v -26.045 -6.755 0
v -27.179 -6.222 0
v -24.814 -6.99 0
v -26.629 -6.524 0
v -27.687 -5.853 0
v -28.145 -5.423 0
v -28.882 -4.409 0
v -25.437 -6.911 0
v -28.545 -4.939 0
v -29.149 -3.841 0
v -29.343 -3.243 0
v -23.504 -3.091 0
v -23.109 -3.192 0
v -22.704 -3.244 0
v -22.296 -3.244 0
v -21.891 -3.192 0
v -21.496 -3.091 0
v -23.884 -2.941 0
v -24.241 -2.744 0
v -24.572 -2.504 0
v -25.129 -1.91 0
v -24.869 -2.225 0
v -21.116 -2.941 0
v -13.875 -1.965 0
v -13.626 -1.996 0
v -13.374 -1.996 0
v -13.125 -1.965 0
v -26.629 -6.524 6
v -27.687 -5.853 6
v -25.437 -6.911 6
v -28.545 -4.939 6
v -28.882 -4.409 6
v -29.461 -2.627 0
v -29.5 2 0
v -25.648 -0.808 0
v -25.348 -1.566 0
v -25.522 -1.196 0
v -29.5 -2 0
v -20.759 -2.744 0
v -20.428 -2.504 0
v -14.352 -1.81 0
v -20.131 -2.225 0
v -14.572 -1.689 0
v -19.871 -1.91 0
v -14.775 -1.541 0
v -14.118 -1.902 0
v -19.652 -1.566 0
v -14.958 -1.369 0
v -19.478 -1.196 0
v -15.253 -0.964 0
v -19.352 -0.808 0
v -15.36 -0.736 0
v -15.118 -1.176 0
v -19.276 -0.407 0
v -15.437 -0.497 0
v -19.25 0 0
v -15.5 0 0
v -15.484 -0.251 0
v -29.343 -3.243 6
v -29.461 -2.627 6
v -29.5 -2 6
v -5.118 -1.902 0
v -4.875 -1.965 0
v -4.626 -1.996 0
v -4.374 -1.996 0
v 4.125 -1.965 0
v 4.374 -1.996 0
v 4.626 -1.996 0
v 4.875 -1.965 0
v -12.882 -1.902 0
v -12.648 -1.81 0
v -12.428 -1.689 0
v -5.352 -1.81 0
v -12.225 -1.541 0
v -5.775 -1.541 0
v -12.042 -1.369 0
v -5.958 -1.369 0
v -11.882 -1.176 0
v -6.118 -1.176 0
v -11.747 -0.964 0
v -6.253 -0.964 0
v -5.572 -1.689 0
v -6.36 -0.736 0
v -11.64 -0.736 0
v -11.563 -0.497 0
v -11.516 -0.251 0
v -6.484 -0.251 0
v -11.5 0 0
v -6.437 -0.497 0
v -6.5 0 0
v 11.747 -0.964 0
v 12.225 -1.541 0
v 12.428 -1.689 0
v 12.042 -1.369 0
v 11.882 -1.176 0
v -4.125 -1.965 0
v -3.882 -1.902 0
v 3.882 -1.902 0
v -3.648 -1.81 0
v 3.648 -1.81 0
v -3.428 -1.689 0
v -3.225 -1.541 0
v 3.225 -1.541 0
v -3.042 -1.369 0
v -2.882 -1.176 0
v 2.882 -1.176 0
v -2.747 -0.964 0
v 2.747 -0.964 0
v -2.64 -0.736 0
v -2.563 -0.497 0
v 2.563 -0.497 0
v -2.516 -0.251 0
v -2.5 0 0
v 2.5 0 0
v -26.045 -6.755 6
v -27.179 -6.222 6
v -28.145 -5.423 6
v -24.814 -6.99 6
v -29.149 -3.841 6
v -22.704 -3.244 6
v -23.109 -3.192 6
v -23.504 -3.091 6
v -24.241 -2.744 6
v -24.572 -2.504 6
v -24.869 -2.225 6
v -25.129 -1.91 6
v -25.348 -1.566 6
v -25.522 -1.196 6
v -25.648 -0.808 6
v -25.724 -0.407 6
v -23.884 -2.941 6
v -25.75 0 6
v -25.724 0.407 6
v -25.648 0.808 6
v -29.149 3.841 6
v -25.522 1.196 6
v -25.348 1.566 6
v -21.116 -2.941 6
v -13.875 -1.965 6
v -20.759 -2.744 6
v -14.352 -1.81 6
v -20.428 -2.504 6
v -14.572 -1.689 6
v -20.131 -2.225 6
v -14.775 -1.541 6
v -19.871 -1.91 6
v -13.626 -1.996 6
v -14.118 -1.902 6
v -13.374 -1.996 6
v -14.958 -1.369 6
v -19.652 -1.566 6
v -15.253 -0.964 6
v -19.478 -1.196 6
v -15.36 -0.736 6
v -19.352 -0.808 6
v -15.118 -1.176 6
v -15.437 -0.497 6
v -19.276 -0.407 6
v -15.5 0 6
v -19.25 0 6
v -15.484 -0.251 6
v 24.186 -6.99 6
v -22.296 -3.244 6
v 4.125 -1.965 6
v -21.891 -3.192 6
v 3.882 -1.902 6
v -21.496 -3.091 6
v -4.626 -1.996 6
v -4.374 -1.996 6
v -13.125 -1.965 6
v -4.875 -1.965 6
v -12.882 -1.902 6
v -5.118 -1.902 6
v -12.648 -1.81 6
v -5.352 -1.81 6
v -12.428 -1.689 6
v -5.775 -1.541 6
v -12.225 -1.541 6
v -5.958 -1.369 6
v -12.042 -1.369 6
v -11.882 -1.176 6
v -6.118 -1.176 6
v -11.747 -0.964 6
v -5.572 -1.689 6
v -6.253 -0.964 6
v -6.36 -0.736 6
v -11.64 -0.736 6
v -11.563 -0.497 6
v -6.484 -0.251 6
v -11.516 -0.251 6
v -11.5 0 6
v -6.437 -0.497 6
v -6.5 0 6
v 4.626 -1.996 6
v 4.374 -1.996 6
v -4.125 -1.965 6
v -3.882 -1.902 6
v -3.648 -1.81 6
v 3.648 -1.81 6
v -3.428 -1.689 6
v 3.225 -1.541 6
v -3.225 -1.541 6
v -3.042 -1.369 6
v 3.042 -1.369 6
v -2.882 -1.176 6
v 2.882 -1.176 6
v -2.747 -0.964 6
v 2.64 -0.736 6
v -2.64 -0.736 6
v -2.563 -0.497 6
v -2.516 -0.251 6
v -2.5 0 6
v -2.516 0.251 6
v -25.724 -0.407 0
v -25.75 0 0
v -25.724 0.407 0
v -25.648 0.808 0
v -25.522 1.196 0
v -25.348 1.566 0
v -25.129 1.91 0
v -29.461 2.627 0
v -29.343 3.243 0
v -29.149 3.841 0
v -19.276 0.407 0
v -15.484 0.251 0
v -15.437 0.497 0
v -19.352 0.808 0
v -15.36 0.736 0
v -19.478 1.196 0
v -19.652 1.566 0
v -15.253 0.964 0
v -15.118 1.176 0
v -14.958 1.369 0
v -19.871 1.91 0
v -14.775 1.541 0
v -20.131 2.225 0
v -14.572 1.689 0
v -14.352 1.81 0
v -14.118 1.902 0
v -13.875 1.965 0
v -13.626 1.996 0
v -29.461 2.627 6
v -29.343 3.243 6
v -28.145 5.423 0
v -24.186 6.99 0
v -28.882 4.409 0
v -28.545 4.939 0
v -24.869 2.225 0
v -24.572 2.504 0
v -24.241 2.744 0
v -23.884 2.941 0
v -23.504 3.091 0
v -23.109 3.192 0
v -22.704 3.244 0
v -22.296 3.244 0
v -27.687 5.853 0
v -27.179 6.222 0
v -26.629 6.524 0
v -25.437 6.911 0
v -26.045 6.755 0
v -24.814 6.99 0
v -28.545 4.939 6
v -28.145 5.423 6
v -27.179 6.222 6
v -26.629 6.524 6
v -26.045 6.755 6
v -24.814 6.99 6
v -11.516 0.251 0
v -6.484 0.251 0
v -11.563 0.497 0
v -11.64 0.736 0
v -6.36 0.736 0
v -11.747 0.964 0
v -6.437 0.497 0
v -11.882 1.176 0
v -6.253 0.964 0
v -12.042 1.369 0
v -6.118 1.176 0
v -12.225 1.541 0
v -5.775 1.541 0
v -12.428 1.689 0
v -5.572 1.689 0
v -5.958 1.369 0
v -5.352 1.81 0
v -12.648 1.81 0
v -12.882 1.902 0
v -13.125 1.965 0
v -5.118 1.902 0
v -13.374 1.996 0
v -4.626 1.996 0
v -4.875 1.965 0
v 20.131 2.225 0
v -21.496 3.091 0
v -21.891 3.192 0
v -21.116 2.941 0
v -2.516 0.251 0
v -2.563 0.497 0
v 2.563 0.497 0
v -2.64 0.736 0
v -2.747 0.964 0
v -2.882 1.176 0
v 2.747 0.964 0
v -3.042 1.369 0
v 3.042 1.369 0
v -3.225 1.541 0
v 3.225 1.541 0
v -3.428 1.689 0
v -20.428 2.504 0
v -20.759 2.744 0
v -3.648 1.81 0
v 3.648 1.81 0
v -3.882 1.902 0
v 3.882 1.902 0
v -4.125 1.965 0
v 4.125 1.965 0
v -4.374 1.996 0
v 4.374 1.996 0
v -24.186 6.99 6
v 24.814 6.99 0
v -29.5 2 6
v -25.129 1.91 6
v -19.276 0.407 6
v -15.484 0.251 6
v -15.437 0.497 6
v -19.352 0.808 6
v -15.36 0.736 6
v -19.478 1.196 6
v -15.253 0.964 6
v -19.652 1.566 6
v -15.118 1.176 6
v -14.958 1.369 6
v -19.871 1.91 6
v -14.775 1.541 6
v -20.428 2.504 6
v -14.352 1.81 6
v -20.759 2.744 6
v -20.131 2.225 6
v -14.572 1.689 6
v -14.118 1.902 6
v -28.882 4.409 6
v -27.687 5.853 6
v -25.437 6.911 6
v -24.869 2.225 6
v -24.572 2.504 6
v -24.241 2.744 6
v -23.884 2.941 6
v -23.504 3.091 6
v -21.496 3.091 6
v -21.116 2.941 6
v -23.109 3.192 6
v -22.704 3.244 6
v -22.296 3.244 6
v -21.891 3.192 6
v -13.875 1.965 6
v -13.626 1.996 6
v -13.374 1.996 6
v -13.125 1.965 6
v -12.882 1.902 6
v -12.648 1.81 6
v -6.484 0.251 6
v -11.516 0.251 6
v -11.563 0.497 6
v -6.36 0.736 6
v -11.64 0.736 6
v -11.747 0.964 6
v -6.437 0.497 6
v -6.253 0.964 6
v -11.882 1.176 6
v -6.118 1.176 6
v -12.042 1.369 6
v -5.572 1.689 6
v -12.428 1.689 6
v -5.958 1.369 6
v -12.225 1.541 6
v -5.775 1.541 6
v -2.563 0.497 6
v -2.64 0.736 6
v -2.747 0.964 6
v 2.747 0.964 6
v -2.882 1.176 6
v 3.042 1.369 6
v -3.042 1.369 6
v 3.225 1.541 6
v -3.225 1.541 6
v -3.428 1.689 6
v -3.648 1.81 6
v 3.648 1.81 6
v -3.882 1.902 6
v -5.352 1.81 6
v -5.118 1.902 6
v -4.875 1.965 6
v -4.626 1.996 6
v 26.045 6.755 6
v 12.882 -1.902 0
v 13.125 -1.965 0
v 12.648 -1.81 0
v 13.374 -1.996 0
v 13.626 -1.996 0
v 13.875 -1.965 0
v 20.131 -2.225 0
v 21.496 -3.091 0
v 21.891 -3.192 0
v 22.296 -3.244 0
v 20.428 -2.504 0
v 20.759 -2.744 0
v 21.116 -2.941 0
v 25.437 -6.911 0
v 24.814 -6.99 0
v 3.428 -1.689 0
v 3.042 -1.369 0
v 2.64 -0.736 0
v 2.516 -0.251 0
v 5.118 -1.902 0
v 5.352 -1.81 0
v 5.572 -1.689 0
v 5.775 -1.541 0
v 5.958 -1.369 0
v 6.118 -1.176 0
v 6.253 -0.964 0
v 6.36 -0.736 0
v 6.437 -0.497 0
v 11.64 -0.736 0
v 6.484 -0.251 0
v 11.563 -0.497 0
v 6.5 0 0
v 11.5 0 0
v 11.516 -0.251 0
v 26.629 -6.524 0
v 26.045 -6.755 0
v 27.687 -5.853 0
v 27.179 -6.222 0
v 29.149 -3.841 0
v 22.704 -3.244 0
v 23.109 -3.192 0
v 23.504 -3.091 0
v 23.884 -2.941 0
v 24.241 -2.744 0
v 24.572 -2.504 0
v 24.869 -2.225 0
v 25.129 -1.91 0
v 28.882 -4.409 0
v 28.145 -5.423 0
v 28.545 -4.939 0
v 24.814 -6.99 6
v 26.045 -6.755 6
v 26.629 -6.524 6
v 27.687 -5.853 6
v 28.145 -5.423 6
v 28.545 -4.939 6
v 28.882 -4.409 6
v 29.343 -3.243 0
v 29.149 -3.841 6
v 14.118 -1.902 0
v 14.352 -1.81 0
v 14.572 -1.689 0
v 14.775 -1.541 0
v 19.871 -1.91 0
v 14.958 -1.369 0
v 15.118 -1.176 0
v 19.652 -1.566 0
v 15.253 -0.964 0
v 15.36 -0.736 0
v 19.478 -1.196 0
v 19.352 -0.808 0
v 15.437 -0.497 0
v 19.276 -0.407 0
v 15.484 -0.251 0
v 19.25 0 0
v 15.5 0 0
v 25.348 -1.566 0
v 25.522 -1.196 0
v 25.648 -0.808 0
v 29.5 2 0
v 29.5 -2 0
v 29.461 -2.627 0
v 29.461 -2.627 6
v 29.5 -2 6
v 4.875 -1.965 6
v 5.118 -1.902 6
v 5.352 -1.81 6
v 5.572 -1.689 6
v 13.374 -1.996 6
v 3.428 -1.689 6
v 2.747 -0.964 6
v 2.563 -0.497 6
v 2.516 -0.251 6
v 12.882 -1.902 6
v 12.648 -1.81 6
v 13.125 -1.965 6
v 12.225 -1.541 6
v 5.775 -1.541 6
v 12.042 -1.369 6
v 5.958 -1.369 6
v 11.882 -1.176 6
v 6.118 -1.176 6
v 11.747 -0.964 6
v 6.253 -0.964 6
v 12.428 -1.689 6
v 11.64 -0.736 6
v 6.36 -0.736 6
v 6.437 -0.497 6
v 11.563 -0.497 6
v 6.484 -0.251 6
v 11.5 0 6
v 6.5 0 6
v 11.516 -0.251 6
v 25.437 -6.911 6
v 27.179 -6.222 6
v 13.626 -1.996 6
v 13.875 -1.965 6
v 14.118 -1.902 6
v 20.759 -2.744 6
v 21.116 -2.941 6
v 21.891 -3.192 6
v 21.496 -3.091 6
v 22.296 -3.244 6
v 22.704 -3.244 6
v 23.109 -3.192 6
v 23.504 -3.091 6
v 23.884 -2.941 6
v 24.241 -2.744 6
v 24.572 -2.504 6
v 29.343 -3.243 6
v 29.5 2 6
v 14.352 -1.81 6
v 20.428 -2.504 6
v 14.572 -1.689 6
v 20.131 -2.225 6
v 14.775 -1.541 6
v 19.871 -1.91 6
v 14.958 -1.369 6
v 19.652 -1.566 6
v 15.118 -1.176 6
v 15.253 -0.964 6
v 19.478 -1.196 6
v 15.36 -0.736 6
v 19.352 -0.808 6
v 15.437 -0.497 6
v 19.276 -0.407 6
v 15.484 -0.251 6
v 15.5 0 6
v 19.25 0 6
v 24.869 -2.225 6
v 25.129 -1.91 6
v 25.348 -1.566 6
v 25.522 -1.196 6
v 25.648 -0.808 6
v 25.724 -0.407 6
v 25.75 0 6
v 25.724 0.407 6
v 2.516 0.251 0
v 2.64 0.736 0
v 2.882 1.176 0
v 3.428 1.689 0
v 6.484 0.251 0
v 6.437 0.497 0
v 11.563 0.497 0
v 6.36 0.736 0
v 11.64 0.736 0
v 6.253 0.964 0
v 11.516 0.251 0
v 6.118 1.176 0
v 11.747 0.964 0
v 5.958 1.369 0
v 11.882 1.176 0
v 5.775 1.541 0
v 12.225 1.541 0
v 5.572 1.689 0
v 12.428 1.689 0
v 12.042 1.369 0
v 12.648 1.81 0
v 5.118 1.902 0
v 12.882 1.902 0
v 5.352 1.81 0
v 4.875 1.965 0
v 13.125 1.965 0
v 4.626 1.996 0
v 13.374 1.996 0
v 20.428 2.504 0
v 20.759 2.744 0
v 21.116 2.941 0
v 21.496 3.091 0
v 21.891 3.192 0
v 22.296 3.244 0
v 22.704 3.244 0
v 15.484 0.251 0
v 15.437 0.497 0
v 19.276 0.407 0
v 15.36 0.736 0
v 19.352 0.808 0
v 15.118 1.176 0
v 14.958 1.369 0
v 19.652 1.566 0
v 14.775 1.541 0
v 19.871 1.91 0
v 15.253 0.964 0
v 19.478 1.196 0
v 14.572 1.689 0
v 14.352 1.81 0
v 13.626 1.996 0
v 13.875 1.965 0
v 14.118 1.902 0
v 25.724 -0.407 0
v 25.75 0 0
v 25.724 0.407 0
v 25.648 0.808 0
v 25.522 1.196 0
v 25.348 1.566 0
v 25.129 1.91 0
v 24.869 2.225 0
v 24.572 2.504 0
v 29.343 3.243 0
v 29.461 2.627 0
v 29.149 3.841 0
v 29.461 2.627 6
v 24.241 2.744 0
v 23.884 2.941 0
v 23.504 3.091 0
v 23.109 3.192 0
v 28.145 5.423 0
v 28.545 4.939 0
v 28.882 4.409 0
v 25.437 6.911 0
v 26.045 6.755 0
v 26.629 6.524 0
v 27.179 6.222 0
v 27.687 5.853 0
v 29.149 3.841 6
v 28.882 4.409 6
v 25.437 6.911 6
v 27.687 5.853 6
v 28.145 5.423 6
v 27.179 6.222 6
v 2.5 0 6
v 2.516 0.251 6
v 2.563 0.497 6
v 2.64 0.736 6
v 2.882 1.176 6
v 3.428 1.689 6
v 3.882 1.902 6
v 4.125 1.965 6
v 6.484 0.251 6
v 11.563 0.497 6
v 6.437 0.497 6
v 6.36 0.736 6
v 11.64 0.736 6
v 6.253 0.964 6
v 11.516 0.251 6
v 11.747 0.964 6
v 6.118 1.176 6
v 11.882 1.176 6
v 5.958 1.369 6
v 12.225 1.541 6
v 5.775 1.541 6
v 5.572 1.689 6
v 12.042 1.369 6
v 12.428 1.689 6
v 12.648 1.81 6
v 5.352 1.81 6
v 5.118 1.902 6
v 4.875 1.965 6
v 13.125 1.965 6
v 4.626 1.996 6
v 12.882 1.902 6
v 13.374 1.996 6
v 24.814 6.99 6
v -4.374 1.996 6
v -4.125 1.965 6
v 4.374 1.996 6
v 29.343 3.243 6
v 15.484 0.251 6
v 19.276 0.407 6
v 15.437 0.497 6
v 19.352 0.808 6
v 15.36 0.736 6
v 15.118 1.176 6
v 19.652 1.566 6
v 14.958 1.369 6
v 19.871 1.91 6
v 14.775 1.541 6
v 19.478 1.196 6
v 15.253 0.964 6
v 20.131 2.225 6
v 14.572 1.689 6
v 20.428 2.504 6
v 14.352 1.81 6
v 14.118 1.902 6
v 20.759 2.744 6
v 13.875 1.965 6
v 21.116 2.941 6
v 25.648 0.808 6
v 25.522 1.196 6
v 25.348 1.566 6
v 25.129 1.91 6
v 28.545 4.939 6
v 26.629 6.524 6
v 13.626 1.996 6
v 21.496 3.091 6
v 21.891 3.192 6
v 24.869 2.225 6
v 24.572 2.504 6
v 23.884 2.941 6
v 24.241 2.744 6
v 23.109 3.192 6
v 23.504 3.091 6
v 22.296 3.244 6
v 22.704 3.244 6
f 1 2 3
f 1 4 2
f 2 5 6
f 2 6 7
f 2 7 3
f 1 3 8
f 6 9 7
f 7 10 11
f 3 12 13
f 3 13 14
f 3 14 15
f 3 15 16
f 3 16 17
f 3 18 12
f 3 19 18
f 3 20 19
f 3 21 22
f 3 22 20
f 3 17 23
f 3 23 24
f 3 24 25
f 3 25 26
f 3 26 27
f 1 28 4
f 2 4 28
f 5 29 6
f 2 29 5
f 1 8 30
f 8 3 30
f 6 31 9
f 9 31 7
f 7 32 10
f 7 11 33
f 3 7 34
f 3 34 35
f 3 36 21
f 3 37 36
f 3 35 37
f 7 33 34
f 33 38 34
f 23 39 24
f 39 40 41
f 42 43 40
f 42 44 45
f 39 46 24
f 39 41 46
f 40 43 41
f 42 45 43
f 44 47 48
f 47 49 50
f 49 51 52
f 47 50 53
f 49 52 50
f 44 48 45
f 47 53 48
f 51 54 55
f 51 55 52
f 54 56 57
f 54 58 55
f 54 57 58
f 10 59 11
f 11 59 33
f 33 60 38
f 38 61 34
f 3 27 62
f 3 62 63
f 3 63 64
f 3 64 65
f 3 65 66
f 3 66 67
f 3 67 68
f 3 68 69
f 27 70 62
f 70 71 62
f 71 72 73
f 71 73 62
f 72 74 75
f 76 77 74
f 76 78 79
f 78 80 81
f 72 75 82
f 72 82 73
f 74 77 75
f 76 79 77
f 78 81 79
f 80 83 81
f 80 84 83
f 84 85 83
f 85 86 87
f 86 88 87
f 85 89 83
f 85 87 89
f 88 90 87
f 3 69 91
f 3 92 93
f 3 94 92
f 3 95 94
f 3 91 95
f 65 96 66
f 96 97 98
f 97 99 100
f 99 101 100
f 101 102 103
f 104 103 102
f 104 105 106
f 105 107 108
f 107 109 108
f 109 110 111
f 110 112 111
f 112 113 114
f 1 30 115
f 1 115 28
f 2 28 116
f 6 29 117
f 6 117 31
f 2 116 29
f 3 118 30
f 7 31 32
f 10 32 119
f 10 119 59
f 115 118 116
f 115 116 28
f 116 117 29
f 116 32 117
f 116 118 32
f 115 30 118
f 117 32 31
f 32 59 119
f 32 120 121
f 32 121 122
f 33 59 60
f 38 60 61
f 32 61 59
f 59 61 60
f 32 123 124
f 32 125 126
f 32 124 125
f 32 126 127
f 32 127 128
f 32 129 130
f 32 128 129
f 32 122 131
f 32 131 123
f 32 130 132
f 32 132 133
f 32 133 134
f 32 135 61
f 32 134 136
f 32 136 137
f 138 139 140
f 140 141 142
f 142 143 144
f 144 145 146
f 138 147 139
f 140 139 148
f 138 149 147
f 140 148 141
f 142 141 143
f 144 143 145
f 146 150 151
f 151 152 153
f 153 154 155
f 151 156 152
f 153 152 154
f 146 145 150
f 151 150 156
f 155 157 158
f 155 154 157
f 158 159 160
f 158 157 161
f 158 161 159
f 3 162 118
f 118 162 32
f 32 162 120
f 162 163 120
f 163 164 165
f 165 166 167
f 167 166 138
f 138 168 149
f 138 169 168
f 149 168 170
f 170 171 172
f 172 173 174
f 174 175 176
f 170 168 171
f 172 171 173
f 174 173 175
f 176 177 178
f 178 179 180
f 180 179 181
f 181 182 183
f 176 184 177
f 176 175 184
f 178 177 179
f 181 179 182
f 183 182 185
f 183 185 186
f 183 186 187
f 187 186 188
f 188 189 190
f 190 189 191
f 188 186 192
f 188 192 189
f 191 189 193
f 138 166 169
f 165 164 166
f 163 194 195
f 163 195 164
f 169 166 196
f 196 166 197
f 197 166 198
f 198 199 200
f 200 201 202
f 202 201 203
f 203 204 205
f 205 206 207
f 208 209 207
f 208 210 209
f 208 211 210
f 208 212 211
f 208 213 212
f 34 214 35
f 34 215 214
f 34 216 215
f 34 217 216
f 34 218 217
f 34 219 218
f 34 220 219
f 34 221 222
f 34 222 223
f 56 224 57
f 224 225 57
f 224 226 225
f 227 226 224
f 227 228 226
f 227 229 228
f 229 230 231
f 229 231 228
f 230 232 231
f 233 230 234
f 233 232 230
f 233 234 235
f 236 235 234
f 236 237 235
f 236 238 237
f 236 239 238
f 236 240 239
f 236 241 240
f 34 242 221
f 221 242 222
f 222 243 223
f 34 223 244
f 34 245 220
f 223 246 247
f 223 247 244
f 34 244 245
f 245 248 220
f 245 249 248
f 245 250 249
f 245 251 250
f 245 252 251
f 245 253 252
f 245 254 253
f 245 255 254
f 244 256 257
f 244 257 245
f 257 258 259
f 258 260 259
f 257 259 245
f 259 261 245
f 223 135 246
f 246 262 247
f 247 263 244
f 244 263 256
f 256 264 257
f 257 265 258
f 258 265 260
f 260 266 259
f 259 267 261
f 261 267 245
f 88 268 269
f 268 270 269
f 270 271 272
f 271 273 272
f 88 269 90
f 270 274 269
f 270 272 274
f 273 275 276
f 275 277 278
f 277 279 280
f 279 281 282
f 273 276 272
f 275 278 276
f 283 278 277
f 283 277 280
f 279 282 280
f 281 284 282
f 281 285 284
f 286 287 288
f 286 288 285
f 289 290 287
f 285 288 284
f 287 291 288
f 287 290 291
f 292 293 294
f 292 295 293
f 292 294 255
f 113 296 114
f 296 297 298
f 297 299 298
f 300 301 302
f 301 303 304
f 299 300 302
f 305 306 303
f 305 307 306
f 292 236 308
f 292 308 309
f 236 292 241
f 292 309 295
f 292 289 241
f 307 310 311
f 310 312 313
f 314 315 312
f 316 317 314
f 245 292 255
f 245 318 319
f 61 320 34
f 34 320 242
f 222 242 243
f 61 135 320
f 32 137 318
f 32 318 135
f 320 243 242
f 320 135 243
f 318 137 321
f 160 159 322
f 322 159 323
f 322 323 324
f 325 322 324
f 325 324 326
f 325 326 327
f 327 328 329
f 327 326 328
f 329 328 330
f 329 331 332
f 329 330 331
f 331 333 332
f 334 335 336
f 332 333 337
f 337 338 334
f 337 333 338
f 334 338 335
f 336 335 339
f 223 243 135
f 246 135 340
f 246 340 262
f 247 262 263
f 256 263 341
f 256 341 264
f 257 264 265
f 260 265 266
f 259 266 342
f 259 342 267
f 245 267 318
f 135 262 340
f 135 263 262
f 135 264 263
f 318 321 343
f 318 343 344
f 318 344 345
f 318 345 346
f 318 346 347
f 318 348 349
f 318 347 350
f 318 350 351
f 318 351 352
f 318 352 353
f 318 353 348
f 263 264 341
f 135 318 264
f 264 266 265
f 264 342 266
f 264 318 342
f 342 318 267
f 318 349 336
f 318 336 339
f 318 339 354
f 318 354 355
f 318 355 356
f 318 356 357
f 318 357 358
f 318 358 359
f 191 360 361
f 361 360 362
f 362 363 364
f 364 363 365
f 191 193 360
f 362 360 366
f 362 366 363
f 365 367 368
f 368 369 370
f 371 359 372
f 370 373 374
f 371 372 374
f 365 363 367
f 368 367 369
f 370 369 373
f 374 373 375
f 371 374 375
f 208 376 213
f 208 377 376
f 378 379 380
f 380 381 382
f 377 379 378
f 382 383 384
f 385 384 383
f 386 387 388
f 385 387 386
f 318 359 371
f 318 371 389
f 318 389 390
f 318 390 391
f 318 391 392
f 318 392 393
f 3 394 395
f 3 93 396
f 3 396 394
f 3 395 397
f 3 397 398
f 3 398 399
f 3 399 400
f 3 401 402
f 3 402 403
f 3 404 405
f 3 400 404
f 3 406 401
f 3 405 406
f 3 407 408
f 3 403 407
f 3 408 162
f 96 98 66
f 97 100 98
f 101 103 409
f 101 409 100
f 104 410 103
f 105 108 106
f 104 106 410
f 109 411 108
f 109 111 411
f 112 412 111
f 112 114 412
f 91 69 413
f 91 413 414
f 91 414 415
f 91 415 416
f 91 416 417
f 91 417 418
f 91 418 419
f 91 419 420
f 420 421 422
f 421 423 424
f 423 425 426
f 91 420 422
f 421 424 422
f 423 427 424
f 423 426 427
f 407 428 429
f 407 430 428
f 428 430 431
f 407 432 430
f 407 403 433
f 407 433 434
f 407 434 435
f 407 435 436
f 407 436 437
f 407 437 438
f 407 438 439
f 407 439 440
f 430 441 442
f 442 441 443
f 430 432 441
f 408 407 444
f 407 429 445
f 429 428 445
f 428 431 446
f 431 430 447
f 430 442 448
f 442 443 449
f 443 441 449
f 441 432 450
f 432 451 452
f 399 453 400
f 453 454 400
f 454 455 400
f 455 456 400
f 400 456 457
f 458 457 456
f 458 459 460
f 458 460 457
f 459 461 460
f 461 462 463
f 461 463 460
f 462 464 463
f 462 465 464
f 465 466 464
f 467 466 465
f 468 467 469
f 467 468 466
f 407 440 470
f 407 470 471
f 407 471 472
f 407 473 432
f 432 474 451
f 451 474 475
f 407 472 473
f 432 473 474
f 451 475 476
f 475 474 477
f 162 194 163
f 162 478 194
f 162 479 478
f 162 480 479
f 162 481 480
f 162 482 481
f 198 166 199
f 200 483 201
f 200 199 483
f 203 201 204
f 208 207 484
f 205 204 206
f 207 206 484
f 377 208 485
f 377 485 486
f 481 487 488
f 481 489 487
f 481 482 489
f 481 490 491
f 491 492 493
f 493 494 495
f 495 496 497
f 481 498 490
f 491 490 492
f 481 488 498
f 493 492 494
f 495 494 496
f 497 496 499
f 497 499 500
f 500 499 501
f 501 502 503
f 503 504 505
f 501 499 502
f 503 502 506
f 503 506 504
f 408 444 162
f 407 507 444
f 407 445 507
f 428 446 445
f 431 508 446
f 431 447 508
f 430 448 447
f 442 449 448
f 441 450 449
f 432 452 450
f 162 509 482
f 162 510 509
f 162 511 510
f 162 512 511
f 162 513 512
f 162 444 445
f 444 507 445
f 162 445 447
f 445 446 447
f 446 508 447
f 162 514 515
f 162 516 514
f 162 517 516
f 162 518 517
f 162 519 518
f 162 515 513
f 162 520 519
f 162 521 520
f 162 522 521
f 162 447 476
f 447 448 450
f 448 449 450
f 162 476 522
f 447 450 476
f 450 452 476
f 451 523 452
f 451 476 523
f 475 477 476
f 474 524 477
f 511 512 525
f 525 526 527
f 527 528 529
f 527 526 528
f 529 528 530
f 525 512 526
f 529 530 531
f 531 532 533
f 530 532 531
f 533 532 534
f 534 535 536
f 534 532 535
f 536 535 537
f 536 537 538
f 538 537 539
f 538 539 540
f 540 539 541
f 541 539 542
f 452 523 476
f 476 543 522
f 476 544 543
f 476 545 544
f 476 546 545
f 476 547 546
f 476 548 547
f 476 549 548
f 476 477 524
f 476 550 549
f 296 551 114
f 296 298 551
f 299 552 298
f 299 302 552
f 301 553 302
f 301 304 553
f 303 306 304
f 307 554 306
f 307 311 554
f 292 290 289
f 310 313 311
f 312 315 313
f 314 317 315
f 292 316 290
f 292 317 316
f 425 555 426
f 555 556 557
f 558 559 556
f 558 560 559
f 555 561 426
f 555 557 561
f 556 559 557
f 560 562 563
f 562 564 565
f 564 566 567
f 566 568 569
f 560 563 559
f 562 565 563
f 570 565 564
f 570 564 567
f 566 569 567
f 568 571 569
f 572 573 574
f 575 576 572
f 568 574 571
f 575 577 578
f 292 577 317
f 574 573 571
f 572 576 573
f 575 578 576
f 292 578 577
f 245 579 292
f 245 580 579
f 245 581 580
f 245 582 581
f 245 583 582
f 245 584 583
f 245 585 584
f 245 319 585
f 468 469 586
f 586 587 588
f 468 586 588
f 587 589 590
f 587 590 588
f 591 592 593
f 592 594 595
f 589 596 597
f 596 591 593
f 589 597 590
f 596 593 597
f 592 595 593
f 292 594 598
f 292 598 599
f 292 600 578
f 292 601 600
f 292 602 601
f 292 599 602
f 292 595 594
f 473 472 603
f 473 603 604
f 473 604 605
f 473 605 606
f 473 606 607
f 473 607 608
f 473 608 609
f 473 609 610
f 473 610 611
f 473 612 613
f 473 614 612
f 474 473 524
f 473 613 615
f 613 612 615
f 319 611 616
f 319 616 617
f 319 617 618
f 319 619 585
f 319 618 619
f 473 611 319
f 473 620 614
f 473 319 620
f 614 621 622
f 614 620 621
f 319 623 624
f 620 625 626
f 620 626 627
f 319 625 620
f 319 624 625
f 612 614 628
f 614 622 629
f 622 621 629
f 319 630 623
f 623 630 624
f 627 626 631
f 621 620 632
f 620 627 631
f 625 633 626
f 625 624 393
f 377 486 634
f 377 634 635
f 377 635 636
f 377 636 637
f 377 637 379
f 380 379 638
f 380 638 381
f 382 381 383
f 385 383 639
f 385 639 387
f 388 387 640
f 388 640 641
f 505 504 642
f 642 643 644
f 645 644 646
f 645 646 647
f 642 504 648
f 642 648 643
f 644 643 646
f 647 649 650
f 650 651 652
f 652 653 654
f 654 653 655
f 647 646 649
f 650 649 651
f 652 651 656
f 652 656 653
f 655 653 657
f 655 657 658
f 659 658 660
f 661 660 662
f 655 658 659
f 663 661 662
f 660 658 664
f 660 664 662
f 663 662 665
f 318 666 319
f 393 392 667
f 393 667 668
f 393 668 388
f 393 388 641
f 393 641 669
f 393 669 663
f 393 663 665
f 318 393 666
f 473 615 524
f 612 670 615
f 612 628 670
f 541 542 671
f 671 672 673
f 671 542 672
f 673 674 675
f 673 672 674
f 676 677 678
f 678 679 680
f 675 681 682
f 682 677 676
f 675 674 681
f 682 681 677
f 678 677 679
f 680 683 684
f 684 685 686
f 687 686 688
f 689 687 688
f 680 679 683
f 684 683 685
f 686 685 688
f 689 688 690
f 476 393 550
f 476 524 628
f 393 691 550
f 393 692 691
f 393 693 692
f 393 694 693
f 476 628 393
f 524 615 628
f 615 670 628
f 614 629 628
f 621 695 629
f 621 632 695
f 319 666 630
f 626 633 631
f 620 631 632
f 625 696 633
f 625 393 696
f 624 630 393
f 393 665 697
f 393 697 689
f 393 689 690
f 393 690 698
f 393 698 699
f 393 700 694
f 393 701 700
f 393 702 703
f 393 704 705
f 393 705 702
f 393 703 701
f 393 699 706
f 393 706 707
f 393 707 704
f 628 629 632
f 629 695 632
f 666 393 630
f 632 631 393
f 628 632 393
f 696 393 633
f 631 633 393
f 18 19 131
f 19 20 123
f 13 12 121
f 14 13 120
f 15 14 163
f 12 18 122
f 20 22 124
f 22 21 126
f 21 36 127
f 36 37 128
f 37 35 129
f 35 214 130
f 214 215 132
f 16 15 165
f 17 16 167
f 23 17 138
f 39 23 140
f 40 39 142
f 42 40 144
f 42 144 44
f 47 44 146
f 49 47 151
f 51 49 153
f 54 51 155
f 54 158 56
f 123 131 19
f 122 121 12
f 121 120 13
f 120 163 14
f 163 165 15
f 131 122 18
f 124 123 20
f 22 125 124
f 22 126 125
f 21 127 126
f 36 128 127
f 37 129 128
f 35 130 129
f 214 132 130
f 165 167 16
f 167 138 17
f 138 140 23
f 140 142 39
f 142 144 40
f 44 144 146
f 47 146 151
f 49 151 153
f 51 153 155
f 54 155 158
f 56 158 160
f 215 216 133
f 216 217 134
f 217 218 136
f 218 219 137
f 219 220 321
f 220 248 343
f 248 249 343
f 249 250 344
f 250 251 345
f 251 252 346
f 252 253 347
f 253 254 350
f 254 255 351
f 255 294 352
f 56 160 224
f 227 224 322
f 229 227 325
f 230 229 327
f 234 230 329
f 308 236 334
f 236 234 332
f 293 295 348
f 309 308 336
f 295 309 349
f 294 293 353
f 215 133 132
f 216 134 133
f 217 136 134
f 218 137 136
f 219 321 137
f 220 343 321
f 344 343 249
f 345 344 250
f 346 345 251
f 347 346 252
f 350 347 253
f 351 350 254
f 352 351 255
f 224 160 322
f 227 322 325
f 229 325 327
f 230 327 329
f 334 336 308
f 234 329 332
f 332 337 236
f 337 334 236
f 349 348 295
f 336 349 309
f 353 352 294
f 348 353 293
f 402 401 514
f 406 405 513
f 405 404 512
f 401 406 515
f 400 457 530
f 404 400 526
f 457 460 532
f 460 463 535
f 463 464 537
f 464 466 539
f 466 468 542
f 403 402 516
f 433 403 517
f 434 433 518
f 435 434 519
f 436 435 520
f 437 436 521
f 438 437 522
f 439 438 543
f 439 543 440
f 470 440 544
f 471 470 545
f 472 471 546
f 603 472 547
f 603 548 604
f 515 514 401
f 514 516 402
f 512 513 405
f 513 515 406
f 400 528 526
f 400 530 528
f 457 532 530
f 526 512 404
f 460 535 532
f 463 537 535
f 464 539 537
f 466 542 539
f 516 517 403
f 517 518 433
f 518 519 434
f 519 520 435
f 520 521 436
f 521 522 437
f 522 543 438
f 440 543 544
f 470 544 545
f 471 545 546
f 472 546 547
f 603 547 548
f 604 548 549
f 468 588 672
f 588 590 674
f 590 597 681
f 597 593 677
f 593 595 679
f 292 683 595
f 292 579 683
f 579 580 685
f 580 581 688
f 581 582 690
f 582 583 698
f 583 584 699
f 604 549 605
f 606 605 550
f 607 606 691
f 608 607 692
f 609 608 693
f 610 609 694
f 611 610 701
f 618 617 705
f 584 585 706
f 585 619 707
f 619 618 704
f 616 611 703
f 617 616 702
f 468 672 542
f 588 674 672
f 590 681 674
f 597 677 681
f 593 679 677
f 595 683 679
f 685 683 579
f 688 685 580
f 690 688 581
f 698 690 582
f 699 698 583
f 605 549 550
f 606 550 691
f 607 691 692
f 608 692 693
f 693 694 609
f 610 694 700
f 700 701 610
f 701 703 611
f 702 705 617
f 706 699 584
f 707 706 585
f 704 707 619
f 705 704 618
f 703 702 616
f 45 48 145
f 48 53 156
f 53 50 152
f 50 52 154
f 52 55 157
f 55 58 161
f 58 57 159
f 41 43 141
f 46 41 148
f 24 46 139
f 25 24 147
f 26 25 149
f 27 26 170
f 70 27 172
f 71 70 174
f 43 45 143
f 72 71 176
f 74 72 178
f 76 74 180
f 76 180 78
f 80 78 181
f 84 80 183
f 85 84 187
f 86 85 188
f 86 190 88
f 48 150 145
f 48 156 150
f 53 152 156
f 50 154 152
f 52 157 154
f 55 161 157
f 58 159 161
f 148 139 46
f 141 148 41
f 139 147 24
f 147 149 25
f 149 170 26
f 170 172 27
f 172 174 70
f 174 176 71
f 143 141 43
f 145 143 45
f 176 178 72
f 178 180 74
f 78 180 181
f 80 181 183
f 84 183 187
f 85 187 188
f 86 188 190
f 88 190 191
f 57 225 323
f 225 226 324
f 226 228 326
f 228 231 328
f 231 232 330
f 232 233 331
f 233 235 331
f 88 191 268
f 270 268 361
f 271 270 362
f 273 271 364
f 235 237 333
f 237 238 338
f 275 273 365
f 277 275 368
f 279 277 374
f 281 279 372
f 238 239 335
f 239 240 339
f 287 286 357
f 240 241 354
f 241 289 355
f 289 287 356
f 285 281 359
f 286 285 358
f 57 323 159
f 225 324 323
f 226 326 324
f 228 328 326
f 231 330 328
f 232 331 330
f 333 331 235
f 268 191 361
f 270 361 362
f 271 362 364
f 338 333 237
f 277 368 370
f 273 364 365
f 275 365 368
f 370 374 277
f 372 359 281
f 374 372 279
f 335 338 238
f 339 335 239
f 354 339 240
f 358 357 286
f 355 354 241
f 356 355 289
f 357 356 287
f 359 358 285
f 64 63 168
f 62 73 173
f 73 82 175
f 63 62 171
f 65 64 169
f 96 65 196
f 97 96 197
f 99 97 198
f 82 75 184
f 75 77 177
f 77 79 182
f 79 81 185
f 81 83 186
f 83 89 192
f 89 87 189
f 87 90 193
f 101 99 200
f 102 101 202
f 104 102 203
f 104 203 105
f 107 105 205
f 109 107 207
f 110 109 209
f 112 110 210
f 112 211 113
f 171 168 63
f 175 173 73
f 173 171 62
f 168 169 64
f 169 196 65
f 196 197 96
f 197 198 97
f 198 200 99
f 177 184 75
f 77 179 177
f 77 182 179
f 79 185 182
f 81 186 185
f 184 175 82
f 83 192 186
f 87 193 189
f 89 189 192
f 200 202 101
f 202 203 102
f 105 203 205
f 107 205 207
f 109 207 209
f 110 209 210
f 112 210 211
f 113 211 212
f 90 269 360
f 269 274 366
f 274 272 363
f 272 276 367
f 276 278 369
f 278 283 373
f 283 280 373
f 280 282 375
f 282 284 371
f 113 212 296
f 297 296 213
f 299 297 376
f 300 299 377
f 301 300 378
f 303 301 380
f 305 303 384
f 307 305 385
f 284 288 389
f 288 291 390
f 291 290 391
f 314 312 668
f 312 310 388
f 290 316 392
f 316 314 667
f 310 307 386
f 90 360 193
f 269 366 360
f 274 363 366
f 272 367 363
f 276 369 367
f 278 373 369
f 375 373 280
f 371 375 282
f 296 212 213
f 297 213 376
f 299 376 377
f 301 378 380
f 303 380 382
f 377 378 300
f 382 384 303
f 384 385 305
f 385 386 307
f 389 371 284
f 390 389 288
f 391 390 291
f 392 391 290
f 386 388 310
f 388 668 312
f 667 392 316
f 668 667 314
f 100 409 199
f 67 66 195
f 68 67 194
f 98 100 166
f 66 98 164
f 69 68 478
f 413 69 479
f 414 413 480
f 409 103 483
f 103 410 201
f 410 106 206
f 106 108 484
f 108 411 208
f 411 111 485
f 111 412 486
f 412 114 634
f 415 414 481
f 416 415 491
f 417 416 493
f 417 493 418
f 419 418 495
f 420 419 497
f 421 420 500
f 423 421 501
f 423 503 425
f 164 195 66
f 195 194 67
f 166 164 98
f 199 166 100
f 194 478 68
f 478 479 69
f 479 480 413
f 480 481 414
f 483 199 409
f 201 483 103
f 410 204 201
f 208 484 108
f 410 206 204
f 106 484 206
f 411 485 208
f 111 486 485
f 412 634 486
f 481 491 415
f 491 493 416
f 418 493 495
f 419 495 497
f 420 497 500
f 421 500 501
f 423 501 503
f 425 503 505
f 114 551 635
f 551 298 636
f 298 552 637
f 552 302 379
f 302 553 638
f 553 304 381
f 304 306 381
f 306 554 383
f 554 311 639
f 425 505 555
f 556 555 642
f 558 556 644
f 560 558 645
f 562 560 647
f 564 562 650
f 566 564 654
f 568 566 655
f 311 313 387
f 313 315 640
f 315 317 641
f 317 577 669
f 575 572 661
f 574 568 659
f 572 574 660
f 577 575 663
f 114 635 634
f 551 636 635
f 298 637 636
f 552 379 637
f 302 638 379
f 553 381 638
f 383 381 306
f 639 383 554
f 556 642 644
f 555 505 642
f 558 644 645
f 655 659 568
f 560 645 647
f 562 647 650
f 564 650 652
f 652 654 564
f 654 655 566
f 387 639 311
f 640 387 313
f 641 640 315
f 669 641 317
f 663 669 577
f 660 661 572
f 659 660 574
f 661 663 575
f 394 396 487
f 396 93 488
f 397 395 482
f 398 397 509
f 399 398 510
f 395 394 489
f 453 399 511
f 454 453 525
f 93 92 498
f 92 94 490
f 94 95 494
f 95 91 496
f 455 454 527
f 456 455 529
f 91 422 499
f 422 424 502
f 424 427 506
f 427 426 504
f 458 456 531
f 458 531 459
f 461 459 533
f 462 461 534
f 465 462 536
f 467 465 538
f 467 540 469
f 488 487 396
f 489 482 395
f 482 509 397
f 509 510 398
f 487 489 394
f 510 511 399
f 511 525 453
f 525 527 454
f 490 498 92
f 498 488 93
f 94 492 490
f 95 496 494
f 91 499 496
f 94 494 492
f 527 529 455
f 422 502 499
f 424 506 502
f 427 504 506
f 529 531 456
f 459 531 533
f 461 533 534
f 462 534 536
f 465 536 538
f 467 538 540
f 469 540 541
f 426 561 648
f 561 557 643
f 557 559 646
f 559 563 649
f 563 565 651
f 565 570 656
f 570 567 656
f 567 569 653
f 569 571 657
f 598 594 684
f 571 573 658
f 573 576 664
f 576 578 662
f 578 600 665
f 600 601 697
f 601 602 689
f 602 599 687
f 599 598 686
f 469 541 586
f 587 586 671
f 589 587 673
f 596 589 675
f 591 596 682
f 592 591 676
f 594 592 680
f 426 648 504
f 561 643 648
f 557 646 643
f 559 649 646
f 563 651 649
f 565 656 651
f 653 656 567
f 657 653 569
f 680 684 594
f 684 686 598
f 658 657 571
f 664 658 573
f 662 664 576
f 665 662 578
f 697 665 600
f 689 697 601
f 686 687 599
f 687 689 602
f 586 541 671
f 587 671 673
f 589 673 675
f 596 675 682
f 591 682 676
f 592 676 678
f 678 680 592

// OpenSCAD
$fn = 50;

difference() {
	union() {
		hull() {
			translate(v = [-24.5, 2.0, 0]) {
				cylinder(h = 6, r = 5);
			}
			translate(v = [24.5, 2.0, 0]) {
				cylinder(h = 6, r = 5);
			}
			translate(v = [-24.5, -2.0, 0]) {
				cylinder(h = 6, r = 5);
			}
			translate(v = [24.5, -2.0, 0]) {
				cylinder(h = 6, r = 5);
			}
		}
	}
	union() {
		translate(v = [-22.5, 0.0, 0]) {
			cylinder(h = 6, r = 3.25);
		}
		translate(v = [22.5, 0.0, 0]) {
			cylinder(h = 6, r = 3.25);
		}
		translate(v = [-13.5, 0, 0.0]) {
			cylinder(h = 6, r = 2.0);
		}
		translate(v = [-4.5, 0, 0.0]) {
			cylinder(h = 6, r = 2.0);
		}
		translate(v = [4.5, 0, 0.0]) {
			cylinder(h = 6, r = 2.0);
		}
		translate(v = [13.5, 0, 0.0]) {
			cylinder(h = 6, r = 2.0);
		}
	}
}
